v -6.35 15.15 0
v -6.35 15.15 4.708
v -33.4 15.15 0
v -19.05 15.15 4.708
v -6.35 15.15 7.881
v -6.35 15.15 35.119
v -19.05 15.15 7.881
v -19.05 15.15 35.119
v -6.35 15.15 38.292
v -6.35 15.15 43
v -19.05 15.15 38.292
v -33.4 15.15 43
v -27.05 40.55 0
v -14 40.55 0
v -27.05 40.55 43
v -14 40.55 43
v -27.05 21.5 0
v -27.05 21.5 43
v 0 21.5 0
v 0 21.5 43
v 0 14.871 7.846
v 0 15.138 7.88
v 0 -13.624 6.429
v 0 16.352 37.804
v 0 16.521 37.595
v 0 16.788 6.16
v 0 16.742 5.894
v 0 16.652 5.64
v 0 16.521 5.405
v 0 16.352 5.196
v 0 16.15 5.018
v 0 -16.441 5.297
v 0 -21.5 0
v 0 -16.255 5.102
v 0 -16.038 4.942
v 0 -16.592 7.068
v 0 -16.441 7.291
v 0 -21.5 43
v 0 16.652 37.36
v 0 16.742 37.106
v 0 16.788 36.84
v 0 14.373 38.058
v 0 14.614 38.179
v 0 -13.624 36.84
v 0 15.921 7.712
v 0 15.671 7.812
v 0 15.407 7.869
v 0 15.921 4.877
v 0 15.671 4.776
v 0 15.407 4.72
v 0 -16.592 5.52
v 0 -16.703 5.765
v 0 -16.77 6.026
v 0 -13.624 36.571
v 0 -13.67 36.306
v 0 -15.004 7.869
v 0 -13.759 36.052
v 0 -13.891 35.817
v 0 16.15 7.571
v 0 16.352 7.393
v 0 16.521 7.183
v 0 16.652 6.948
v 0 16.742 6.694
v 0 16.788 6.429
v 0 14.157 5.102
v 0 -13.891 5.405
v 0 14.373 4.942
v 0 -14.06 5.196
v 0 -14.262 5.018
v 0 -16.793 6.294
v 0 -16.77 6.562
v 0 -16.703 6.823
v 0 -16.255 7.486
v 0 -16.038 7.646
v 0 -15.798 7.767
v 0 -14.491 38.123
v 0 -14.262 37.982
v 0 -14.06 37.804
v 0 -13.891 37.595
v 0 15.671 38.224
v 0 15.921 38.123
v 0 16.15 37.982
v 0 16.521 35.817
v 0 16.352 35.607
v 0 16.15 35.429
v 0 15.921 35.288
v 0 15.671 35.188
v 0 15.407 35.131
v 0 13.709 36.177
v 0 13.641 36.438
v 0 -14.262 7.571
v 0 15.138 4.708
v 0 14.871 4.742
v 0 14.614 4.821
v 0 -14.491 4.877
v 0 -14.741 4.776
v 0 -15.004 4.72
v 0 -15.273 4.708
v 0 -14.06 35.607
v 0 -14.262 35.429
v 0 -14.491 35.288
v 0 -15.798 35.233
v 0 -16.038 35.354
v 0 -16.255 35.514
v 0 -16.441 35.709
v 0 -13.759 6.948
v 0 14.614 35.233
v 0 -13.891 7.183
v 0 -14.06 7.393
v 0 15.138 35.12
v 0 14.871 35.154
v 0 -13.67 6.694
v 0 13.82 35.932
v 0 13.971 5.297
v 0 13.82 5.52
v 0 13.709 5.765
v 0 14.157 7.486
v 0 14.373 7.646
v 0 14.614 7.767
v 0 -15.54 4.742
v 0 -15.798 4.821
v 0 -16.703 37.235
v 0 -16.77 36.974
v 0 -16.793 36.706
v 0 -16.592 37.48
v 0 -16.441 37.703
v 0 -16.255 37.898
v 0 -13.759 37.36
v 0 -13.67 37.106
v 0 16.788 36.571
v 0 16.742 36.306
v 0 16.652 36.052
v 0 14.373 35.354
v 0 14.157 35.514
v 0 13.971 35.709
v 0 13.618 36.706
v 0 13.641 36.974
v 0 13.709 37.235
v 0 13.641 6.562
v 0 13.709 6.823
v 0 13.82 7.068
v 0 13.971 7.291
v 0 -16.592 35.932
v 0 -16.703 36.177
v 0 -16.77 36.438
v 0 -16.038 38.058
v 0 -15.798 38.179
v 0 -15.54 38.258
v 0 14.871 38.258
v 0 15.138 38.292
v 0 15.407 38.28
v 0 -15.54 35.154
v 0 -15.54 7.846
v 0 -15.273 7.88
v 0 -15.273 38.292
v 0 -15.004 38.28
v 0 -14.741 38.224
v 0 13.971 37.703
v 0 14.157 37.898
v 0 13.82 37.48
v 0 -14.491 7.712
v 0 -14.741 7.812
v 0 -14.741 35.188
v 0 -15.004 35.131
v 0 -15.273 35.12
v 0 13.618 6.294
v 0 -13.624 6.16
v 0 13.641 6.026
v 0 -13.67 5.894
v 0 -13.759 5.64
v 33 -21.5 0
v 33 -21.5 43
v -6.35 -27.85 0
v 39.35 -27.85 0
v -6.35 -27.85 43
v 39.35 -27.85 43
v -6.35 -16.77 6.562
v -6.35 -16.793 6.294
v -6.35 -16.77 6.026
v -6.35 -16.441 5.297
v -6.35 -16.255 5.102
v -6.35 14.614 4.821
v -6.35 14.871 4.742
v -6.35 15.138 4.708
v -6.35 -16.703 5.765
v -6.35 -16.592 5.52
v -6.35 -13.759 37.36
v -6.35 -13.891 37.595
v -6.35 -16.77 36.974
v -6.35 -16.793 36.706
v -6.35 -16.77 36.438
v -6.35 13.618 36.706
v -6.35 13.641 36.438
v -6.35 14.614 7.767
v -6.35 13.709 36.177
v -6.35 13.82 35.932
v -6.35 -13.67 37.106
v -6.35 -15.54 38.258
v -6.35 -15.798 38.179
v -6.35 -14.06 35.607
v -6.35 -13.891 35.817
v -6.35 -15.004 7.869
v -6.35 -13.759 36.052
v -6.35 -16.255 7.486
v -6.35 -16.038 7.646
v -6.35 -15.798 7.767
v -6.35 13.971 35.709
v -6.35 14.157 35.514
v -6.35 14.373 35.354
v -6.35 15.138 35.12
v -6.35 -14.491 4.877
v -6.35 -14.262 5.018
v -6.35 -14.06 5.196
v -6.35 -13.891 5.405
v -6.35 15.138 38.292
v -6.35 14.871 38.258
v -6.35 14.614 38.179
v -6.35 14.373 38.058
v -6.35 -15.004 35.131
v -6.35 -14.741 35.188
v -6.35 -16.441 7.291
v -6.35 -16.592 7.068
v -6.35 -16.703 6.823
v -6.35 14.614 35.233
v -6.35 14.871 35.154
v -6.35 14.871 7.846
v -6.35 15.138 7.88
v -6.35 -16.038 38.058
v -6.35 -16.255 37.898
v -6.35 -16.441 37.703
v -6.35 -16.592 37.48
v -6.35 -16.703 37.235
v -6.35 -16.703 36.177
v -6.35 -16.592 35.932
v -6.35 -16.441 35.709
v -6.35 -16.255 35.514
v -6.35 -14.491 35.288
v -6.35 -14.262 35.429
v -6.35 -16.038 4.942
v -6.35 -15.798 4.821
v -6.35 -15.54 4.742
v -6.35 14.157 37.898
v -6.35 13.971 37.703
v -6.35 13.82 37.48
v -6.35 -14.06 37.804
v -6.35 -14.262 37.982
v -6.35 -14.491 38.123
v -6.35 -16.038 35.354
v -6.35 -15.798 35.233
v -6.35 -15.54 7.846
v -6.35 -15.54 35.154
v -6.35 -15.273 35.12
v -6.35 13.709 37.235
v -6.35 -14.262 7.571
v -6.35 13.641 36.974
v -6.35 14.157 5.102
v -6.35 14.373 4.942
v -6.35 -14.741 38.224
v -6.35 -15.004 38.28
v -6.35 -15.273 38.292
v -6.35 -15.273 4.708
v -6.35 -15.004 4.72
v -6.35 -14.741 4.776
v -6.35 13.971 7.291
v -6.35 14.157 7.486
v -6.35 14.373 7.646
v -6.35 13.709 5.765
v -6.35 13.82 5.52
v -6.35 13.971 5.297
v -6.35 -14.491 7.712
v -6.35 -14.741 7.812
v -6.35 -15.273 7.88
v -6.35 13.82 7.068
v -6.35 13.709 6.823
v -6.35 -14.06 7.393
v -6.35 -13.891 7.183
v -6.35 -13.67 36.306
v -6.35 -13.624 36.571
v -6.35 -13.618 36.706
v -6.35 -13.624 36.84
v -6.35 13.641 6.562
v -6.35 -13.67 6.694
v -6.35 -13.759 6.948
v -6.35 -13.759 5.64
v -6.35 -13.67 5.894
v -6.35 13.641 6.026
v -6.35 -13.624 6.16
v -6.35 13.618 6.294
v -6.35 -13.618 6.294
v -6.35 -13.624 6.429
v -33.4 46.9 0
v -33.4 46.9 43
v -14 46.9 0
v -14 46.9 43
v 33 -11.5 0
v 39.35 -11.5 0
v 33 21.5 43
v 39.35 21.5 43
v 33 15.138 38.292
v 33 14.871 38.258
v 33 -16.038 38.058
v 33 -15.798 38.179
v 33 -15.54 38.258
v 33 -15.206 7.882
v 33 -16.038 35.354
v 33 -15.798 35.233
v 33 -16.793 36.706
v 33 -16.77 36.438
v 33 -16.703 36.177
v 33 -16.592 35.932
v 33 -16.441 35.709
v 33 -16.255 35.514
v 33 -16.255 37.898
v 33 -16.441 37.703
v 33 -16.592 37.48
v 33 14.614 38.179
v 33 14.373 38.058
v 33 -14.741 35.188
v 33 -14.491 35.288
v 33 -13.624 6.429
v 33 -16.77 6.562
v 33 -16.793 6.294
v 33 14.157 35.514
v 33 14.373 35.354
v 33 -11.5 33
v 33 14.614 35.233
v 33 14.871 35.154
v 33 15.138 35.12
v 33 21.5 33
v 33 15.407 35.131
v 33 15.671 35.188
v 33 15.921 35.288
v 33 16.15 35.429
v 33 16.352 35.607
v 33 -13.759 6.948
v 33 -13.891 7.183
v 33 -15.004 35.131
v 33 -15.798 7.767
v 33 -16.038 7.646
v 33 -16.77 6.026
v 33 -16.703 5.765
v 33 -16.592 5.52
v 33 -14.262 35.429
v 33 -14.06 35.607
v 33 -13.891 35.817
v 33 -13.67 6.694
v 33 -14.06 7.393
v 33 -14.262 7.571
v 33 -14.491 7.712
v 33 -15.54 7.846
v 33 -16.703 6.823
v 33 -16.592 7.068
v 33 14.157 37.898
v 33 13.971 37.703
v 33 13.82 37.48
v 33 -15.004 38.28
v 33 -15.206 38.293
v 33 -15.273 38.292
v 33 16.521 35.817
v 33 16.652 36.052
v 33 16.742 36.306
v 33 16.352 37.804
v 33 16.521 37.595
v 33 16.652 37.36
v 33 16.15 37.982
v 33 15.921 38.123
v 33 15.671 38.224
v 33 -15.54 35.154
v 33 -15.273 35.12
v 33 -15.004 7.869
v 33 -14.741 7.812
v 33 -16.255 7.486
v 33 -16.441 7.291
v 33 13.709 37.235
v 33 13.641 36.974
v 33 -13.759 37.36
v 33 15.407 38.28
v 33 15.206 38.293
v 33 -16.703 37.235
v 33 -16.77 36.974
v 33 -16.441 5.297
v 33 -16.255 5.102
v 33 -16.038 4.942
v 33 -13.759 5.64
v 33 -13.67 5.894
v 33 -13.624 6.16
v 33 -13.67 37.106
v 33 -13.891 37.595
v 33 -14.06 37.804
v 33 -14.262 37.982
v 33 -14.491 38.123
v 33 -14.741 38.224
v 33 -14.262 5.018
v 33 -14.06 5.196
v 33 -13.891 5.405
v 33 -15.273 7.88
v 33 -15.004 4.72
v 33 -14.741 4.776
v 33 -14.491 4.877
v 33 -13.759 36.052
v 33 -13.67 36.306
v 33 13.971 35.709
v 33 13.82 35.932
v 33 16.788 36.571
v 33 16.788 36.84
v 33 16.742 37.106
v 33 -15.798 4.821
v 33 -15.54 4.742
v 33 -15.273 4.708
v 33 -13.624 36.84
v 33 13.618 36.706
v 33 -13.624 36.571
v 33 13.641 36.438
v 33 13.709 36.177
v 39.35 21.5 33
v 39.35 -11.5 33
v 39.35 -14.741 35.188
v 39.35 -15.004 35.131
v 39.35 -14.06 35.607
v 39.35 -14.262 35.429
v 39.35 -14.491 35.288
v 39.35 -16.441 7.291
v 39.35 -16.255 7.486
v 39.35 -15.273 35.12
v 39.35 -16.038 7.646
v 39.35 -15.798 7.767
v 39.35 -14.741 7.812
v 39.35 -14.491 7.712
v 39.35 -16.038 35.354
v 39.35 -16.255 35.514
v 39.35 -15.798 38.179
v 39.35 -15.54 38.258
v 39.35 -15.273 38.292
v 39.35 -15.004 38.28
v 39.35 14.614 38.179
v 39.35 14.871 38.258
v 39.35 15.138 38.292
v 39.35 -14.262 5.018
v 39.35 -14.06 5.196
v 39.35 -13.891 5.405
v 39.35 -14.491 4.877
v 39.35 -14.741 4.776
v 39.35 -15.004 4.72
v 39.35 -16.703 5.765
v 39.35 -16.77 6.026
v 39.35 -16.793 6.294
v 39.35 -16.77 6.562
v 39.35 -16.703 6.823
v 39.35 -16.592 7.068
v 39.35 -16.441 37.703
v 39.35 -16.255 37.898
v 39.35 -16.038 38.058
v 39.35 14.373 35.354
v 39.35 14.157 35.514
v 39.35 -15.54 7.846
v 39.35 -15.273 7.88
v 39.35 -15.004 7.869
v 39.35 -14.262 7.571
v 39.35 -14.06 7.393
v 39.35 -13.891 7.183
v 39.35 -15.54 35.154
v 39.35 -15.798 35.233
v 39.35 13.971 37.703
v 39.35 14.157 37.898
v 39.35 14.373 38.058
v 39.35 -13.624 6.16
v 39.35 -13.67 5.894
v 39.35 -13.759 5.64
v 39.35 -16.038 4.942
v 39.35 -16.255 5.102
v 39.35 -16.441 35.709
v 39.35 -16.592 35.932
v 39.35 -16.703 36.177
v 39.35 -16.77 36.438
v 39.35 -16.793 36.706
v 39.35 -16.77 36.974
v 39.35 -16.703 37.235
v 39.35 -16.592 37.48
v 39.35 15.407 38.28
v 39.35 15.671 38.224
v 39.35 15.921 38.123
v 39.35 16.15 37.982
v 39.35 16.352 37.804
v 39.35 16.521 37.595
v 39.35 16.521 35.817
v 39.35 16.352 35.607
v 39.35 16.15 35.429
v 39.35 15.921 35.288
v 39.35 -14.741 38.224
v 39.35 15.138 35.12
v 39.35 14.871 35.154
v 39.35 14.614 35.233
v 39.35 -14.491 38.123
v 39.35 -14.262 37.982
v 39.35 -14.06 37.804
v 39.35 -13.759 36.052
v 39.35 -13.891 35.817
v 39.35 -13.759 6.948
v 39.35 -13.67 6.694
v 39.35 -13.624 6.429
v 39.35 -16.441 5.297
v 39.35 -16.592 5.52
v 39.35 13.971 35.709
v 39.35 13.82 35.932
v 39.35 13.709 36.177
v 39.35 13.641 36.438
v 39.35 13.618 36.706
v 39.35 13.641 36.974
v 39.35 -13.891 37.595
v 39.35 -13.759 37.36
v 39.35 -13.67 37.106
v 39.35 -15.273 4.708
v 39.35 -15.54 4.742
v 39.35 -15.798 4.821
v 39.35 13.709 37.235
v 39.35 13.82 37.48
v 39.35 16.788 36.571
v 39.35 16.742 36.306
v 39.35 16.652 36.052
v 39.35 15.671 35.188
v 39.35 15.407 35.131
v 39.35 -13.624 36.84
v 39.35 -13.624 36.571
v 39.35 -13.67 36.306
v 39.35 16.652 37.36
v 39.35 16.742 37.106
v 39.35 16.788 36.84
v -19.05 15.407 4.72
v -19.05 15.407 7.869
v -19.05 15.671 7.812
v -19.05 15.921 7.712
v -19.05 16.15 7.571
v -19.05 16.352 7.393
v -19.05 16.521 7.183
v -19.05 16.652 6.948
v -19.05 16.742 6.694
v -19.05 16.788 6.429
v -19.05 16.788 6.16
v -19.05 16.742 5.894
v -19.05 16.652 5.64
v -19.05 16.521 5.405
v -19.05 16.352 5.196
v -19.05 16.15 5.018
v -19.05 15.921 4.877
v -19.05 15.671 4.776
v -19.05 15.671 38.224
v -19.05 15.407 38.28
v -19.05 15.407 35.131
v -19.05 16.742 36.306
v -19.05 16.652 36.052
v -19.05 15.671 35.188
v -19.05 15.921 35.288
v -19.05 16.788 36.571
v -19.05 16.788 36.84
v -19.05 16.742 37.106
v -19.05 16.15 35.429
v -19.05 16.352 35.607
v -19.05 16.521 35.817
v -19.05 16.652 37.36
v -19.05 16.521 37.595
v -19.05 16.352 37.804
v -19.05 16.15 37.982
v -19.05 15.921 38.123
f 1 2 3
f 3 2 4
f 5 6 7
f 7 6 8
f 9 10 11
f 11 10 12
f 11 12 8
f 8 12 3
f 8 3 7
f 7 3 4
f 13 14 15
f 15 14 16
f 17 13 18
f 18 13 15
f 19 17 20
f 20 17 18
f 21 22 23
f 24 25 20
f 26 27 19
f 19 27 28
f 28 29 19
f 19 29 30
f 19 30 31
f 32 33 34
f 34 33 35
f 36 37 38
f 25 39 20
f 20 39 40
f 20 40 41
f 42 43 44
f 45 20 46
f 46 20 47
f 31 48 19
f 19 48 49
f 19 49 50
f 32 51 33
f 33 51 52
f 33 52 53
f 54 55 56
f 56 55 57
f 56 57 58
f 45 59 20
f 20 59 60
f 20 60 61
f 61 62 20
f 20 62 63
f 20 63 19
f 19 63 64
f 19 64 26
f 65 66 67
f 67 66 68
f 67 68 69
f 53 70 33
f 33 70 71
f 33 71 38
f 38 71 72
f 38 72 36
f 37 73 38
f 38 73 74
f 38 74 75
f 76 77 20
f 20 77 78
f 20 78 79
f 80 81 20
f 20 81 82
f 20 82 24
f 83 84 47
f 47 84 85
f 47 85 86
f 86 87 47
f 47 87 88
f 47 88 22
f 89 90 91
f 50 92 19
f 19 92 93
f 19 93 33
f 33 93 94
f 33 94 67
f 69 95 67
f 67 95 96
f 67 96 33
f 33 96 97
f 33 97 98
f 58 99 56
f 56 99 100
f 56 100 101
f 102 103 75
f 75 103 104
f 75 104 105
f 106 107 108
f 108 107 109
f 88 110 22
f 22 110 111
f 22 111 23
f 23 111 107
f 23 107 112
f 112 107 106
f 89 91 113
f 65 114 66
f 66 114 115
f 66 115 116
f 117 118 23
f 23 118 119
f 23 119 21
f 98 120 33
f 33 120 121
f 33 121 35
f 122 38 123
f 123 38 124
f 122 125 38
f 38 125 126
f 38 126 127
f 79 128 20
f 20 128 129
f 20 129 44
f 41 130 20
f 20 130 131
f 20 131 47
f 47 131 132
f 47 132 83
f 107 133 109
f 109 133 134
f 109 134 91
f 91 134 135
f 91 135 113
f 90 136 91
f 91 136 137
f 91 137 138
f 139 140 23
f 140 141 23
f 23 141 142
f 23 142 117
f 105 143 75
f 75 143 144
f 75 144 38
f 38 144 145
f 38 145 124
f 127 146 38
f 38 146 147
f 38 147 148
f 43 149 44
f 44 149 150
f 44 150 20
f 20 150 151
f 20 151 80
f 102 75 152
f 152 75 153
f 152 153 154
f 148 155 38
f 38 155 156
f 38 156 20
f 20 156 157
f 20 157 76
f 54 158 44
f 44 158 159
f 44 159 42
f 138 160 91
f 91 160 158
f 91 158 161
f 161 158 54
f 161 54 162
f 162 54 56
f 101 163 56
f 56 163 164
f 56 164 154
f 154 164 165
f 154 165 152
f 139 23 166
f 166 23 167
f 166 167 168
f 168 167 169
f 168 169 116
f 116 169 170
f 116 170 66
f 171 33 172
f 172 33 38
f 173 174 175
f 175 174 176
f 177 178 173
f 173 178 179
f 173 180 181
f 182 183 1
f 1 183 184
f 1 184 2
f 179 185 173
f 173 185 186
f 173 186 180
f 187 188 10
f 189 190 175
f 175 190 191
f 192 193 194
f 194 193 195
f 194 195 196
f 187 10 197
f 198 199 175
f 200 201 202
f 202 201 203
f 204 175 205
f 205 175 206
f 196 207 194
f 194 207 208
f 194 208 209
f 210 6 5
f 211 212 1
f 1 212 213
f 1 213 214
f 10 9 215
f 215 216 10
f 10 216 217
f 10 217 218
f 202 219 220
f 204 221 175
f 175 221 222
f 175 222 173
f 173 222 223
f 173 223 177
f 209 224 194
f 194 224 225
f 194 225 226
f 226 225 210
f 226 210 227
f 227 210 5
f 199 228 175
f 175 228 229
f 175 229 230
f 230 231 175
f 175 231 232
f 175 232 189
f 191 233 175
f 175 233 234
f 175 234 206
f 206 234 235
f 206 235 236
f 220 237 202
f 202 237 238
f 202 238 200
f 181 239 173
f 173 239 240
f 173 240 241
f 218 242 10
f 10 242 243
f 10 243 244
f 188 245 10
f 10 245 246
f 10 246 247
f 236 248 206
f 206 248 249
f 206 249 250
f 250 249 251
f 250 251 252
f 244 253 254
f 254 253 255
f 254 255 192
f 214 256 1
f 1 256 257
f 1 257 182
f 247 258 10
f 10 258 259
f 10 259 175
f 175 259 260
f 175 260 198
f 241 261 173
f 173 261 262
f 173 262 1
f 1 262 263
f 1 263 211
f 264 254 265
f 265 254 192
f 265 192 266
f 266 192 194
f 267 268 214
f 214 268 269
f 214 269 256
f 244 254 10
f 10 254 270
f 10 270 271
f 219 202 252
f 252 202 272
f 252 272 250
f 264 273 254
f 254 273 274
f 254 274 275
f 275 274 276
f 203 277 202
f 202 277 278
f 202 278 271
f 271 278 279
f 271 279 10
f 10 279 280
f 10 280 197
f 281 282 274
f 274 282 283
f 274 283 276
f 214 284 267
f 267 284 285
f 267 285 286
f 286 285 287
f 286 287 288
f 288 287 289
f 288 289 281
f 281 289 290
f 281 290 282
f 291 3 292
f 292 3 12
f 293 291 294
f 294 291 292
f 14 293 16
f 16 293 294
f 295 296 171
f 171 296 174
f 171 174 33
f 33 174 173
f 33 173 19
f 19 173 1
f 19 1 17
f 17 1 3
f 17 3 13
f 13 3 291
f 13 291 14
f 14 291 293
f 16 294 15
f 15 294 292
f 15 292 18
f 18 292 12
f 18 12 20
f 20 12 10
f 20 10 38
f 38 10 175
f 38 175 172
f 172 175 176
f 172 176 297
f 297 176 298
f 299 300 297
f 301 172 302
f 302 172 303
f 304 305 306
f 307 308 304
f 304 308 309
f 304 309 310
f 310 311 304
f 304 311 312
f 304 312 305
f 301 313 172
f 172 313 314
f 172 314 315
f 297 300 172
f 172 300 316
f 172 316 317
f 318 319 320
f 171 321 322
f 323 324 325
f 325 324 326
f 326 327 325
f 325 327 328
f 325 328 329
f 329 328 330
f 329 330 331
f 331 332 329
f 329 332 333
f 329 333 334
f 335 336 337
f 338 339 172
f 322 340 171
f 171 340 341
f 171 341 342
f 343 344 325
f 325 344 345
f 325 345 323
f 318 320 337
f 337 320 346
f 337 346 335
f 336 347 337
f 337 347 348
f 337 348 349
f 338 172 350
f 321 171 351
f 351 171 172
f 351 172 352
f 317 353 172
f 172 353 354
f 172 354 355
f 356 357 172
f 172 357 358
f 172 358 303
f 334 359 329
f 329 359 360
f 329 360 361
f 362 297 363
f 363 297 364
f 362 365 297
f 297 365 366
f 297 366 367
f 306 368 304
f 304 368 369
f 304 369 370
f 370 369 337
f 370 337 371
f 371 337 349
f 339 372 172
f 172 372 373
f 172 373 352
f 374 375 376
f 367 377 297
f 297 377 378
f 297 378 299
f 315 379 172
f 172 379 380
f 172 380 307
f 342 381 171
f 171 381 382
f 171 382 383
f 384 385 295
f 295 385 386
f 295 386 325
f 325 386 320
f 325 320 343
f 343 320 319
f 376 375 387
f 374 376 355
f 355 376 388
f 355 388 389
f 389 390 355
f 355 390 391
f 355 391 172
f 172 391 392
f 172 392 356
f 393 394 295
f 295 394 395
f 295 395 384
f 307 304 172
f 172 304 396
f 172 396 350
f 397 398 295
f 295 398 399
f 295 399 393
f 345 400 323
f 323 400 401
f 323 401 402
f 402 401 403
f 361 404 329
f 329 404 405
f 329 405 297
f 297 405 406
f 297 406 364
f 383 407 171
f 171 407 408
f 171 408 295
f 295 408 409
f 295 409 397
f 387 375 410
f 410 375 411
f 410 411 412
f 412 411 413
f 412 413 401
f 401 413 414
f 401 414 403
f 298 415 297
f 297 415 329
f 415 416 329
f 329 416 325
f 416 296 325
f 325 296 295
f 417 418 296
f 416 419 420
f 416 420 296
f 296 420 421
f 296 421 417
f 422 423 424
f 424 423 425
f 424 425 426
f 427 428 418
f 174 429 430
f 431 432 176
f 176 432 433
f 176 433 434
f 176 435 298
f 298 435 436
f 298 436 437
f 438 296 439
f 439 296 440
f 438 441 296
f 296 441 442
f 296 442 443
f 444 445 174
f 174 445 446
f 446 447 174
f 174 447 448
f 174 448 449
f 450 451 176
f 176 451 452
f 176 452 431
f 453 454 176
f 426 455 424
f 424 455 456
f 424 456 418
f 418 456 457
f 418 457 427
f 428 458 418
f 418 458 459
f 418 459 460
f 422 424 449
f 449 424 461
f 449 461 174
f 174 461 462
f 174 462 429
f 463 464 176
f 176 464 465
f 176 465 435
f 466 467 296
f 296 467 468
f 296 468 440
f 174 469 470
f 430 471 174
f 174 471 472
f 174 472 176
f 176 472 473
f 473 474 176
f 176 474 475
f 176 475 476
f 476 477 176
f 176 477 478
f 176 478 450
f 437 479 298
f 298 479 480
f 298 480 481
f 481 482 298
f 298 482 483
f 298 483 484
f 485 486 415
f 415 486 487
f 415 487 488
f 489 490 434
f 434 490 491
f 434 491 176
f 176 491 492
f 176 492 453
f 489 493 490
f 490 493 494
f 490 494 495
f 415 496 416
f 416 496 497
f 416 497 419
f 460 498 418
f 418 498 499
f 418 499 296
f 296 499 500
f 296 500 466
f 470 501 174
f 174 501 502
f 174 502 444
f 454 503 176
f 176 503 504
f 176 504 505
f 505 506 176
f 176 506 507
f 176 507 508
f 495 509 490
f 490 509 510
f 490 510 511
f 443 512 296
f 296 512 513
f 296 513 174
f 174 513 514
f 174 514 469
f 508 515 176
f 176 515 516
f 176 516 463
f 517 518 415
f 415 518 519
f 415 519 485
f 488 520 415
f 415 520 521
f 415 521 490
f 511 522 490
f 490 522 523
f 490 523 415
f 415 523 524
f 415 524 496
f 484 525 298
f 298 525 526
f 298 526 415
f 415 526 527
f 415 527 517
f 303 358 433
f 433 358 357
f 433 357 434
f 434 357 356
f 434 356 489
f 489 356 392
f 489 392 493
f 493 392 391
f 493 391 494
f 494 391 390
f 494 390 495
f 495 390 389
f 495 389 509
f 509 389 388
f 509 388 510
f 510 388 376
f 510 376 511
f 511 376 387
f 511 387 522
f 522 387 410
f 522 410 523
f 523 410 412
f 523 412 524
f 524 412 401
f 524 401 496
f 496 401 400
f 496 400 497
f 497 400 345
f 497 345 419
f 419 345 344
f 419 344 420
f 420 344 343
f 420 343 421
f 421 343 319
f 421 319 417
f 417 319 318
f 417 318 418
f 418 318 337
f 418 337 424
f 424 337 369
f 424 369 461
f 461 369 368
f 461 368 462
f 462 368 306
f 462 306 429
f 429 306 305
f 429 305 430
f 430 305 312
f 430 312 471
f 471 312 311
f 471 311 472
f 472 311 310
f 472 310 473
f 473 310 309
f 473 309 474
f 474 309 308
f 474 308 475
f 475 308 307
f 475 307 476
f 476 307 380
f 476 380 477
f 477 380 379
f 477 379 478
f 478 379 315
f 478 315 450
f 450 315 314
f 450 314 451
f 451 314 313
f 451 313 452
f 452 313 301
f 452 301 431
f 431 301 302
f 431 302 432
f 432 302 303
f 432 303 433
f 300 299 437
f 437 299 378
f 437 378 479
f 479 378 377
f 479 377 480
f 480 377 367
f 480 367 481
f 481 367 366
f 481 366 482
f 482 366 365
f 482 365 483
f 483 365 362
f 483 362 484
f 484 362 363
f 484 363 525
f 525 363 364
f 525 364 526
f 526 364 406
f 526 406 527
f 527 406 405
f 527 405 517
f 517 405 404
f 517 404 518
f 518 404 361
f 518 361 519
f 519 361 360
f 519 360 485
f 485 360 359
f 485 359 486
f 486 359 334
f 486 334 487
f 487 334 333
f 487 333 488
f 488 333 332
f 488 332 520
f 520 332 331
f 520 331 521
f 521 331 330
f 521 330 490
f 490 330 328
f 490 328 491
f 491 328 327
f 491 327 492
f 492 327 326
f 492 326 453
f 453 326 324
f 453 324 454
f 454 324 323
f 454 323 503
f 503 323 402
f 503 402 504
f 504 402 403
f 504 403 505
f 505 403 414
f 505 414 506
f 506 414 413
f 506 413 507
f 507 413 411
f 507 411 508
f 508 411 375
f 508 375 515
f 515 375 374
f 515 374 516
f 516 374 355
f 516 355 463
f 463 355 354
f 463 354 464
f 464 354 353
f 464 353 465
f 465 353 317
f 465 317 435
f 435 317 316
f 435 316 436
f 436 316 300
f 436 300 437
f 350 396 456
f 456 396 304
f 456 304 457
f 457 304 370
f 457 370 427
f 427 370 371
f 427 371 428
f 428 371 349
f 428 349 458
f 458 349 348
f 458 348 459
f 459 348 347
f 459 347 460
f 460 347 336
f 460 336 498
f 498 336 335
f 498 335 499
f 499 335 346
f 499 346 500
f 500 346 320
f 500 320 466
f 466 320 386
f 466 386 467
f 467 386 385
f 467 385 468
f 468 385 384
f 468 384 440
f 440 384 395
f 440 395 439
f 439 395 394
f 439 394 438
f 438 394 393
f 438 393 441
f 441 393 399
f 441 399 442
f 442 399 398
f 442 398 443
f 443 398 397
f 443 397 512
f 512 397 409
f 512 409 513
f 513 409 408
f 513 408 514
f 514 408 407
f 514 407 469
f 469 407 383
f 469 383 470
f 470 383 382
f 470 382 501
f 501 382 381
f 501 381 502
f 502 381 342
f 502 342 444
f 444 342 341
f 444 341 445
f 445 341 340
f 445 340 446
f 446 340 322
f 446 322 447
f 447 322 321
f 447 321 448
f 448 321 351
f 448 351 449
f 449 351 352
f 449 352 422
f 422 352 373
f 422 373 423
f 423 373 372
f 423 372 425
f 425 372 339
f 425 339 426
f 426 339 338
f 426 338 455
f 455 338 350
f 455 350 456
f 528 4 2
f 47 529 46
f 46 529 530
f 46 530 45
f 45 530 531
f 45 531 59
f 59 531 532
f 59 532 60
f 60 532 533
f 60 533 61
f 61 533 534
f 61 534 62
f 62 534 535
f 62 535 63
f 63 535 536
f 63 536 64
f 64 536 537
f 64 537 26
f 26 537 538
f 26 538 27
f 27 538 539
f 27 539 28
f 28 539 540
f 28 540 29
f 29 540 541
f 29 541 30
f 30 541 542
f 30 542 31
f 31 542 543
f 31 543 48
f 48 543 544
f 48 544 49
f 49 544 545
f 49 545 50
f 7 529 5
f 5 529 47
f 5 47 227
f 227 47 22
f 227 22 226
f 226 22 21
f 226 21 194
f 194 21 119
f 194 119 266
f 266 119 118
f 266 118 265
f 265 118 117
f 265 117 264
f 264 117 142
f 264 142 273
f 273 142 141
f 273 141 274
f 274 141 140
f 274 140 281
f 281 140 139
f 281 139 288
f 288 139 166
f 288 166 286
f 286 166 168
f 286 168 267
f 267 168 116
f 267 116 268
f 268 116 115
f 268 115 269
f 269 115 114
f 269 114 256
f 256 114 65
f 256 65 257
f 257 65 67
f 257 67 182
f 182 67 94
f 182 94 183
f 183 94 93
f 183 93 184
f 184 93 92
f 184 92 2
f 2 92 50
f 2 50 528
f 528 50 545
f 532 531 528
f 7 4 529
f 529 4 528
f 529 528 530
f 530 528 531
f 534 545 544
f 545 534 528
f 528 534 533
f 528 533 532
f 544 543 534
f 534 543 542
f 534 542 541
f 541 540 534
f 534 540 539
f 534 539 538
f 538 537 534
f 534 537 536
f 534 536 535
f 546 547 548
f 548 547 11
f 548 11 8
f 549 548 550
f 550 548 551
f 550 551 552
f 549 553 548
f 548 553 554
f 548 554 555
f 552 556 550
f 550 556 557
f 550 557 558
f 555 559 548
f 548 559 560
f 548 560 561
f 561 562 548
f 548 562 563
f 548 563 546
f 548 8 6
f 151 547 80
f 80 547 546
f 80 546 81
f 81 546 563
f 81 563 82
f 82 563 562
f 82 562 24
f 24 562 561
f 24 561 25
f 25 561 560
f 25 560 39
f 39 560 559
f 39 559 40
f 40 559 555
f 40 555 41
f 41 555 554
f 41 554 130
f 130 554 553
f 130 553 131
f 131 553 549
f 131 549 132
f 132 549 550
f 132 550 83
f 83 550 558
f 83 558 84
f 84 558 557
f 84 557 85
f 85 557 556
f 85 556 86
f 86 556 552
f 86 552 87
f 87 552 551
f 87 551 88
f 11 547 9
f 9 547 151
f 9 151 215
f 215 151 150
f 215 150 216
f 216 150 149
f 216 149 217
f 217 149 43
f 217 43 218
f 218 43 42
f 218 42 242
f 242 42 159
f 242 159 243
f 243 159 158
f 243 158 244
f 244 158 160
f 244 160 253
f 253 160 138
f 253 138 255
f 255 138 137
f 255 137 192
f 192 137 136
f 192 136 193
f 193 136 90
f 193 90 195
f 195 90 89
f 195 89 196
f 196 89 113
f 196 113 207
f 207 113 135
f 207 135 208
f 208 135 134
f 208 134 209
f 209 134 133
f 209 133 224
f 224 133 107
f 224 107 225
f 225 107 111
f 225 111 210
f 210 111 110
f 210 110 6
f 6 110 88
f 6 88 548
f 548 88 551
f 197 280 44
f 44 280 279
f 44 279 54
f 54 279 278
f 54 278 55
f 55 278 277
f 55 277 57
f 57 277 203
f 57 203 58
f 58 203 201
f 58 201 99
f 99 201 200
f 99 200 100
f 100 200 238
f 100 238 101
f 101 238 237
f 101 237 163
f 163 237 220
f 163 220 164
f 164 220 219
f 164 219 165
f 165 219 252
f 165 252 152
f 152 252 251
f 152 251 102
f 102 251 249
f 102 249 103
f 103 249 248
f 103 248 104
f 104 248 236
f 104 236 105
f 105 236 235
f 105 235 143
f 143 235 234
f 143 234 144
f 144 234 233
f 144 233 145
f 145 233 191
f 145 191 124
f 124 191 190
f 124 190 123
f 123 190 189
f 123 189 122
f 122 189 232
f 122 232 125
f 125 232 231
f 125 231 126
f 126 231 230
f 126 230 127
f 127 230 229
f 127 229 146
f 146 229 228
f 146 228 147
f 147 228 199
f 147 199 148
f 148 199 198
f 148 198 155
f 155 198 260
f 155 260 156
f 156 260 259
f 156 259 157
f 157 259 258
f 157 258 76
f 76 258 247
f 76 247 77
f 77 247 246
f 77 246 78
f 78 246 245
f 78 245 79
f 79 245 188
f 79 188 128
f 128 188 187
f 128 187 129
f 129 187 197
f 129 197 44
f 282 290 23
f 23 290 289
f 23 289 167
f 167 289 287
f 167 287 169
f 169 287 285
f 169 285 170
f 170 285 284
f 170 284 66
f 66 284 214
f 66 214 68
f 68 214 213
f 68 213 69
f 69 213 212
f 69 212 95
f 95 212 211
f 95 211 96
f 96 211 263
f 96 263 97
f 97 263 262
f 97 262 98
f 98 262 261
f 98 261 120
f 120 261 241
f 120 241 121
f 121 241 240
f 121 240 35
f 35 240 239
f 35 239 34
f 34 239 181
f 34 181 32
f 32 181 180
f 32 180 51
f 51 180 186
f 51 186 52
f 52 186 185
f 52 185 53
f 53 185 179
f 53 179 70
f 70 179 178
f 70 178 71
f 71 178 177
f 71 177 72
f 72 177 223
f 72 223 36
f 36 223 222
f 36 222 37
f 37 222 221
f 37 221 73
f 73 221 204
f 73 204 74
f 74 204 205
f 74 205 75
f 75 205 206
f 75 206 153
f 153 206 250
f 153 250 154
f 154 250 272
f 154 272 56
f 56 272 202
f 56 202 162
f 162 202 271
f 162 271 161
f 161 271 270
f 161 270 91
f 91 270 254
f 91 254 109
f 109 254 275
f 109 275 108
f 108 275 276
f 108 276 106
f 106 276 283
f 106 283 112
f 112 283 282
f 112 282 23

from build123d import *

# Parameters (mm, degrees)
BOSS_EXTRUDE1_DEPTH     = 43
SKETCH2_W               = 33
SKETCH2_H               = 6.35
SKETCH2_H_2             = 10
SKETCH2_R               = 1.5
SKETCH2_W_2             = 10
BOSS_EXTRUDE2_DEPTH     = 6.35
CUT_EXTRUDE1_DEPTH      = 79.339645136
CUT_EXTRUDE1_DEPTH_BACK = 12.7
SKETCH3_R               = 1.5875


with BuildPart() as part:
    # Sketch1 → Boss-Extrude1 (new body)
    with BuildSketch(Plane.XY):
        Polygon((-6.35, -27.85), (-6.35, 15.15), (-33.4, 15.15), (-33.4, 46.9), (-14, 46.9), (-14, 40.55), (-27.05, 40.55), (-27.05, 21.5), (0, 21.5), (0, -21.5), (33, -21.5), (33, -27.85), align=None)
    extrude(amount=-BOSS_EXTRUDE1_DEPTH)

    # Sketch2 → Boss-Extrude2 (add)
    # profile 1 of 4: a face of its own
    with BuildSketch(Plane(origin=(33, 0, 0), x_dir=(0, 0, -1), z_dir=(1, 0, 0))):
        with Locations((16.5, -24.675)):
            Rectangle(SKETCH2_W, SKETCH2_H)
    # profile 2 of 4: a face of its own
    with BuildSketch(Plane(origin=(33, 0, 0), x_dir=(0, 0, -1), z_dir=(1, 0, 0))):
        with Locations((16.5, -16.5)):
            Rectangle(SKETCH2_W, SKETCH2_H_2)
        with Locations((6.294174233, -15.205825767)):
            Circle(SKETCH2_R, mode=Mode.SUBTRACT)
    # profile 3 of 4: a face of its own
    with BuildSketch(Plane(origin=(33, 0, 0), x_dir=(0, 0, -1), z_dir=(1, 0, 0))):
        with Locations((38, -24.675)):
            Rectangle(SKETCH2_W_2, SKETCH2_H)
    # profile 4 of 4: a face of its own
    with BuildSketch(Plane(origin=(33, 0, 0), x_dir=(0, 0, -1), z_dir=(1, 0, 0))):
        Polygon((33, -11.5), (33, -21.5), (43, -21.5), (43, 21.5), (33, 21.5), align=None)
        with Locations((36.705825767, -15.205825767)):
            Circle(SKETCH2_R, mode=Mode.SUBTRACT)
        with Locations((36.705825767, 15.205825767)):
            Circle(SKETCH2_R, mode=Mode.SUBTRACT)
    extrude(amount=BOSS_EXTRUDE2_DEPTH)

    # Sketch3 → Cut-Extrude1 (cut, two sides: drawn at the far end of the back side and taken through both)
    with BuildSketch(Plane(origin=(-6.35, 0, 0), x_dir=(0, 0, -1), z_dir=(1, 0, 0)).offset(-CUT_EXTRUDE1_DEPTH_BACK)):
        with Locations(Location((6.294174233, -15.205825767, 0), (0, 0, 270))):
            Circle(SKETCH3_R)
        with Locations(Location((6.294174233, 15.205825767, 0), (0, 0, 270))):
            Circle(SKETCH3_R)
        with Locations(Location((36.705825767, 15.205825767, 0), (0, 0, 270))):
            Circle(SKETCH3_R)
        with Locations(Location((36.705825767, -15.205825767, 0), (0, 0, 270))):
            Circle(SKETCH3_R)
    extrude(amount=CUT_EXTRUDE1_DEPTH + CUT_EXTRUDE1_DEPTH_BACK, mode=Mode.SUBTRACT)


with BuildPart() as body_2:
    # Mirror1: mirrored copy
    add(part.part.mirror(Plane.XY))


solid = body_2.part
